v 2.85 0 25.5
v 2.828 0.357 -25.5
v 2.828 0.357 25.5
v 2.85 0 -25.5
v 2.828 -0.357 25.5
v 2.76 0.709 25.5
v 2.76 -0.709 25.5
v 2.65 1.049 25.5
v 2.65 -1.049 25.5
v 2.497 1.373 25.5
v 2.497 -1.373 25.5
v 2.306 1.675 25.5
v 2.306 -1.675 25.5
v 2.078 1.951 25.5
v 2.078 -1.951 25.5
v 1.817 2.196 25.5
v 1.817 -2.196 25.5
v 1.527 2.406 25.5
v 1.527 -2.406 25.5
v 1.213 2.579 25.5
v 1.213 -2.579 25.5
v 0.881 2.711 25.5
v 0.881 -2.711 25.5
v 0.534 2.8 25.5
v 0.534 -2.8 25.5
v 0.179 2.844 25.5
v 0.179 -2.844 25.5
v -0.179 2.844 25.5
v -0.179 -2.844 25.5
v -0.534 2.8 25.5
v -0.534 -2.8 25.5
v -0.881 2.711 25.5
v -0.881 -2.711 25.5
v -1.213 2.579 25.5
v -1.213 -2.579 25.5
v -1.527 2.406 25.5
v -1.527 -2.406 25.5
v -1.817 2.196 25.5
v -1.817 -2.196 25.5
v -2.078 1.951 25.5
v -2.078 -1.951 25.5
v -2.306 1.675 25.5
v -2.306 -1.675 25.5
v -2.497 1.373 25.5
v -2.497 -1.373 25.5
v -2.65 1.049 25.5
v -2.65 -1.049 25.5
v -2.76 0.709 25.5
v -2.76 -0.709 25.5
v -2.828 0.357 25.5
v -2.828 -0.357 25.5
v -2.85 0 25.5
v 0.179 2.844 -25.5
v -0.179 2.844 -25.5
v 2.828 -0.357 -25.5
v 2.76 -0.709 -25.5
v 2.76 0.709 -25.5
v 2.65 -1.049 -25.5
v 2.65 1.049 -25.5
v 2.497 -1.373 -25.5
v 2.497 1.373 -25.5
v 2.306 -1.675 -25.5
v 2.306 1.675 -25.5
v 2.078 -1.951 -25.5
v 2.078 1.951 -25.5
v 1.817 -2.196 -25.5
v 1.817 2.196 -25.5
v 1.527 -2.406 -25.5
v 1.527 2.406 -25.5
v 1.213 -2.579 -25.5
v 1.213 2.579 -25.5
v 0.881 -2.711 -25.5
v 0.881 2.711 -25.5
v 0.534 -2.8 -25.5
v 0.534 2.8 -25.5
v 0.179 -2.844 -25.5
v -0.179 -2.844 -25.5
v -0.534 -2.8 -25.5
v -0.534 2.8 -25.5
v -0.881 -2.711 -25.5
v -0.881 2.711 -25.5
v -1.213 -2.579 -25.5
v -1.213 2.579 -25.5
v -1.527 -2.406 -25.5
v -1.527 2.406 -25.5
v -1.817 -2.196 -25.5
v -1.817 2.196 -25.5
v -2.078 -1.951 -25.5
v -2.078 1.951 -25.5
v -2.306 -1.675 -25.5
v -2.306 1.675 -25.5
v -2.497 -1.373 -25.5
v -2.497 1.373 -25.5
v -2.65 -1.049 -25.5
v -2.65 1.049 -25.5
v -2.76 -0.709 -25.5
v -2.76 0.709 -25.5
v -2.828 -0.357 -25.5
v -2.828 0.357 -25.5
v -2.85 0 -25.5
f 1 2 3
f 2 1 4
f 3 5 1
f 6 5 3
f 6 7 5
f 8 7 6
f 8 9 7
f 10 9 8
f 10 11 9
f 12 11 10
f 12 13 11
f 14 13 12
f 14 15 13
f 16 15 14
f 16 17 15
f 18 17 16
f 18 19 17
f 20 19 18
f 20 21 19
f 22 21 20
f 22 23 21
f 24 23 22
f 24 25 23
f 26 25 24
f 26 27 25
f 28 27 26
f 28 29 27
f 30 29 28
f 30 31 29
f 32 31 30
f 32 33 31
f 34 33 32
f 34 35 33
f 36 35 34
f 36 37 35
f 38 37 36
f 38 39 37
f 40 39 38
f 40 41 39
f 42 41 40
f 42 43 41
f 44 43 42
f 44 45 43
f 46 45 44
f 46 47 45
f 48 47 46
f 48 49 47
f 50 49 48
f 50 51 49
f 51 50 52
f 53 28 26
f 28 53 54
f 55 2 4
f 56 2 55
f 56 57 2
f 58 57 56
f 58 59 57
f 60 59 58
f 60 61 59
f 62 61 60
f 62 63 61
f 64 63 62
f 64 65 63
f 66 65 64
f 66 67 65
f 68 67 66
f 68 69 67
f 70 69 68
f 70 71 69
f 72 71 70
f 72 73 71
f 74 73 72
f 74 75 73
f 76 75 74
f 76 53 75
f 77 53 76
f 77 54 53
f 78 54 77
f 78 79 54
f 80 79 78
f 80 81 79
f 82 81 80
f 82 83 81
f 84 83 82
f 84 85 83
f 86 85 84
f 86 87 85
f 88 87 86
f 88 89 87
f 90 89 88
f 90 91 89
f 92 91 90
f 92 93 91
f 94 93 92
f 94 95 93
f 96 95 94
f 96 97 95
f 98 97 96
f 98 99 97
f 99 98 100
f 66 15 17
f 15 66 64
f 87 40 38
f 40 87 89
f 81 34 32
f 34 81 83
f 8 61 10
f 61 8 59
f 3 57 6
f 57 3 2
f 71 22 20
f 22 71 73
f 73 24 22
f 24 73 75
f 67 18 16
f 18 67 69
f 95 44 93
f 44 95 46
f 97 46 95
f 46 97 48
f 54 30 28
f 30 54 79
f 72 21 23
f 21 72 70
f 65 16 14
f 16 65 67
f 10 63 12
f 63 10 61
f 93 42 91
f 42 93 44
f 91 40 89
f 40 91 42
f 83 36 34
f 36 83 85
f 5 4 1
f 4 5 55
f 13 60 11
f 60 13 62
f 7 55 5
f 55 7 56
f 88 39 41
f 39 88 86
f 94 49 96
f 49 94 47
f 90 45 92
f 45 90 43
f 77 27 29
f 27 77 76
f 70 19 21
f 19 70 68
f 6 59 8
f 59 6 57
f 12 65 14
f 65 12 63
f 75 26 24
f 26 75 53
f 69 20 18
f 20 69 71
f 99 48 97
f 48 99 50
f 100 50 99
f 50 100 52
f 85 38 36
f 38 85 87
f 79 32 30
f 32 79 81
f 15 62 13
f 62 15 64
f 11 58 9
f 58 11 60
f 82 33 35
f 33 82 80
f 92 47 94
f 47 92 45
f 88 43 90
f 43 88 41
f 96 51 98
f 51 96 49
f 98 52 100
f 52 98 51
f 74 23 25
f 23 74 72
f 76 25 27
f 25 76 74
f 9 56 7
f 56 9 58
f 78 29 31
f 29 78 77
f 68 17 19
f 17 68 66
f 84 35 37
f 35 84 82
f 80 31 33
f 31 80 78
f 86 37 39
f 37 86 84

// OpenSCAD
$fn = 50;


difference() {
	union() {
		translate(v = [0, 0, -25.5000000000]) {
			cylinder(h = 51, r = 2.8500000000);
		}
	}
	union() {
		translate(v = [0, 0, -100.0000000000]) {
			cylinder(h = 200, r = 0);
		}
	}
}
